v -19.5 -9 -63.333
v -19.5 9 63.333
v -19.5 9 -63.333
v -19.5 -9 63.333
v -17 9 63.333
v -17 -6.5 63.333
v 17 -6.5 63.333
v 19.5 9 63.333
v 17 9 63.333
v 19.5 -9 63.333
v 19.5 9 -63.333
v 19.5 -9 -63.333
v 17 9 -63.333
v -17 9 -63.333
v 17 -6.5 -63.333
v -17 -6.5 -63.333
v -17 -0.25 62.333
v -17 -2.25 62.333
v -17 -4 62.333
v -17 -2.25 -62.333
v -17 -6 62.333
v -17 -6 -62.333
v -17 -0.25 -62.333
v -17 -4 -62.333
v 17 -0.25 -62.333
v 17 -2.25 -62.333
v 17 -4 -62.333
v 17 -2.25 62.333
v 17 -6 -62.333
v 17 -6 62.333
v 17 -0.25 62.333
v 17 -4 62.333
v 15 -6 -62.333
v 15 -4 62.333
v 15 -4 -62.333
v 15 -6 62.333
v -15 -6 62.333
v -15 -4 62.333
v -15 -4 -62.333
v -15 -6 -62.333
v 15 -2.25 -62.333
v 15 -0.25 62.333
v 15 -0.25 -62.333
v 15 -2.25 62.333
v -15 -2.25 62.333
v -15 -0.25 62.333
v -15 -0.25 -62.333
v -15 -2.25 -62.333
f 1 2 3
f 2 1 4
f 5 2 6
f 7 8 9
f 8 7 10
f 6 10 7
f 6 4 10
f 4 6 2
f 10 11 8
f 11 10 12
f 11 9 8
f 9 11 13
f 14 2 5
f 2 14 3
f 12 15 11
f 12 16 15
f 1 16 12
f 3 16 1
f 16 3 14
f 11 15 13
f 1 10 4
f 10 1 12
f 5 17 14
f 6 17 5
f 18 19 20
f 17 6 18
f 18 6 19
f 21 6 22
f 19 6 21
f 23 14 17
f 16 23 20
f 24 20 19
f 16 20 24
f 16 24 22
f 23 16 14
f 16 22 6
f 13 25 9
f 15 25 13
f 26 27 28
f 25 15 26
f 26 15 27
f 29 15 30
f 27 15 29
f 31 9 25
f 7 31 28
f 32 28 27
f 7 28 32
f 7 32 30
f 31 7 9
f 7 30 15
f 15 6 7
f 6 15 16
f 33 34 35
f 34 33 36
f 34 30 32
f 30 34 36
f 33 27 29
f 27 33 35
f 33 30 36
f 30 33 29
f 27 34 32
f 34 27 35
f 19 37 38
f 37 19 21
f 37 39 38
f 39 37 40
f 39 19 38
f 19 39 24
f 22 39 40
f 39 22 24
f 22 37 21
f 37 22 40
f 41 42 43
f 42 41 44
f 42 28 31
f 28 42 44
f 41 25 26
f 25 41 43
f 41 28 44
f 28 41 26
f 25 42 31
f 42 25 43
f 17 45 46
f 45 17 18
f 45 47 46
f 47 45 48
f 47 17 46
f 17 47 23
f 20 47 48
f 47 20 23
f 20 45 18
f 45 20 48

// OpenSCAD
height = ((130 * 2) /3)+19*2;
width = 34;
length = 15;


echo(height);
echo(width);
echo(length);


difference() {
    union() {
        cube([width +5, length +3, height +2], center=true);
    }
    
    union() {
        translate([0, 2, 0])
        cube([width, length+2, height+4], center=true);
    }
}

r1w = 2;
r1l = -length + 4+1;

r2l = -length + 12.5;

color("blue") {
    translate([((width - r1w) /2) , (r1l)/2, 0])
    cube([r1w, 2, height], center=true);

    translate([((-width + r1w) /2) , (r1l)/2, 0])
    cube([r1w, 2, height], center=true);

    translate([((width - r1w) /2) , (r2l)/2, 0])
    cube([r1w, 2, height], center=true);

    translate([((-width + r1w) /2) , (r2l)/2, 0])
    cube([r1w, 2, height], center=true);


}
